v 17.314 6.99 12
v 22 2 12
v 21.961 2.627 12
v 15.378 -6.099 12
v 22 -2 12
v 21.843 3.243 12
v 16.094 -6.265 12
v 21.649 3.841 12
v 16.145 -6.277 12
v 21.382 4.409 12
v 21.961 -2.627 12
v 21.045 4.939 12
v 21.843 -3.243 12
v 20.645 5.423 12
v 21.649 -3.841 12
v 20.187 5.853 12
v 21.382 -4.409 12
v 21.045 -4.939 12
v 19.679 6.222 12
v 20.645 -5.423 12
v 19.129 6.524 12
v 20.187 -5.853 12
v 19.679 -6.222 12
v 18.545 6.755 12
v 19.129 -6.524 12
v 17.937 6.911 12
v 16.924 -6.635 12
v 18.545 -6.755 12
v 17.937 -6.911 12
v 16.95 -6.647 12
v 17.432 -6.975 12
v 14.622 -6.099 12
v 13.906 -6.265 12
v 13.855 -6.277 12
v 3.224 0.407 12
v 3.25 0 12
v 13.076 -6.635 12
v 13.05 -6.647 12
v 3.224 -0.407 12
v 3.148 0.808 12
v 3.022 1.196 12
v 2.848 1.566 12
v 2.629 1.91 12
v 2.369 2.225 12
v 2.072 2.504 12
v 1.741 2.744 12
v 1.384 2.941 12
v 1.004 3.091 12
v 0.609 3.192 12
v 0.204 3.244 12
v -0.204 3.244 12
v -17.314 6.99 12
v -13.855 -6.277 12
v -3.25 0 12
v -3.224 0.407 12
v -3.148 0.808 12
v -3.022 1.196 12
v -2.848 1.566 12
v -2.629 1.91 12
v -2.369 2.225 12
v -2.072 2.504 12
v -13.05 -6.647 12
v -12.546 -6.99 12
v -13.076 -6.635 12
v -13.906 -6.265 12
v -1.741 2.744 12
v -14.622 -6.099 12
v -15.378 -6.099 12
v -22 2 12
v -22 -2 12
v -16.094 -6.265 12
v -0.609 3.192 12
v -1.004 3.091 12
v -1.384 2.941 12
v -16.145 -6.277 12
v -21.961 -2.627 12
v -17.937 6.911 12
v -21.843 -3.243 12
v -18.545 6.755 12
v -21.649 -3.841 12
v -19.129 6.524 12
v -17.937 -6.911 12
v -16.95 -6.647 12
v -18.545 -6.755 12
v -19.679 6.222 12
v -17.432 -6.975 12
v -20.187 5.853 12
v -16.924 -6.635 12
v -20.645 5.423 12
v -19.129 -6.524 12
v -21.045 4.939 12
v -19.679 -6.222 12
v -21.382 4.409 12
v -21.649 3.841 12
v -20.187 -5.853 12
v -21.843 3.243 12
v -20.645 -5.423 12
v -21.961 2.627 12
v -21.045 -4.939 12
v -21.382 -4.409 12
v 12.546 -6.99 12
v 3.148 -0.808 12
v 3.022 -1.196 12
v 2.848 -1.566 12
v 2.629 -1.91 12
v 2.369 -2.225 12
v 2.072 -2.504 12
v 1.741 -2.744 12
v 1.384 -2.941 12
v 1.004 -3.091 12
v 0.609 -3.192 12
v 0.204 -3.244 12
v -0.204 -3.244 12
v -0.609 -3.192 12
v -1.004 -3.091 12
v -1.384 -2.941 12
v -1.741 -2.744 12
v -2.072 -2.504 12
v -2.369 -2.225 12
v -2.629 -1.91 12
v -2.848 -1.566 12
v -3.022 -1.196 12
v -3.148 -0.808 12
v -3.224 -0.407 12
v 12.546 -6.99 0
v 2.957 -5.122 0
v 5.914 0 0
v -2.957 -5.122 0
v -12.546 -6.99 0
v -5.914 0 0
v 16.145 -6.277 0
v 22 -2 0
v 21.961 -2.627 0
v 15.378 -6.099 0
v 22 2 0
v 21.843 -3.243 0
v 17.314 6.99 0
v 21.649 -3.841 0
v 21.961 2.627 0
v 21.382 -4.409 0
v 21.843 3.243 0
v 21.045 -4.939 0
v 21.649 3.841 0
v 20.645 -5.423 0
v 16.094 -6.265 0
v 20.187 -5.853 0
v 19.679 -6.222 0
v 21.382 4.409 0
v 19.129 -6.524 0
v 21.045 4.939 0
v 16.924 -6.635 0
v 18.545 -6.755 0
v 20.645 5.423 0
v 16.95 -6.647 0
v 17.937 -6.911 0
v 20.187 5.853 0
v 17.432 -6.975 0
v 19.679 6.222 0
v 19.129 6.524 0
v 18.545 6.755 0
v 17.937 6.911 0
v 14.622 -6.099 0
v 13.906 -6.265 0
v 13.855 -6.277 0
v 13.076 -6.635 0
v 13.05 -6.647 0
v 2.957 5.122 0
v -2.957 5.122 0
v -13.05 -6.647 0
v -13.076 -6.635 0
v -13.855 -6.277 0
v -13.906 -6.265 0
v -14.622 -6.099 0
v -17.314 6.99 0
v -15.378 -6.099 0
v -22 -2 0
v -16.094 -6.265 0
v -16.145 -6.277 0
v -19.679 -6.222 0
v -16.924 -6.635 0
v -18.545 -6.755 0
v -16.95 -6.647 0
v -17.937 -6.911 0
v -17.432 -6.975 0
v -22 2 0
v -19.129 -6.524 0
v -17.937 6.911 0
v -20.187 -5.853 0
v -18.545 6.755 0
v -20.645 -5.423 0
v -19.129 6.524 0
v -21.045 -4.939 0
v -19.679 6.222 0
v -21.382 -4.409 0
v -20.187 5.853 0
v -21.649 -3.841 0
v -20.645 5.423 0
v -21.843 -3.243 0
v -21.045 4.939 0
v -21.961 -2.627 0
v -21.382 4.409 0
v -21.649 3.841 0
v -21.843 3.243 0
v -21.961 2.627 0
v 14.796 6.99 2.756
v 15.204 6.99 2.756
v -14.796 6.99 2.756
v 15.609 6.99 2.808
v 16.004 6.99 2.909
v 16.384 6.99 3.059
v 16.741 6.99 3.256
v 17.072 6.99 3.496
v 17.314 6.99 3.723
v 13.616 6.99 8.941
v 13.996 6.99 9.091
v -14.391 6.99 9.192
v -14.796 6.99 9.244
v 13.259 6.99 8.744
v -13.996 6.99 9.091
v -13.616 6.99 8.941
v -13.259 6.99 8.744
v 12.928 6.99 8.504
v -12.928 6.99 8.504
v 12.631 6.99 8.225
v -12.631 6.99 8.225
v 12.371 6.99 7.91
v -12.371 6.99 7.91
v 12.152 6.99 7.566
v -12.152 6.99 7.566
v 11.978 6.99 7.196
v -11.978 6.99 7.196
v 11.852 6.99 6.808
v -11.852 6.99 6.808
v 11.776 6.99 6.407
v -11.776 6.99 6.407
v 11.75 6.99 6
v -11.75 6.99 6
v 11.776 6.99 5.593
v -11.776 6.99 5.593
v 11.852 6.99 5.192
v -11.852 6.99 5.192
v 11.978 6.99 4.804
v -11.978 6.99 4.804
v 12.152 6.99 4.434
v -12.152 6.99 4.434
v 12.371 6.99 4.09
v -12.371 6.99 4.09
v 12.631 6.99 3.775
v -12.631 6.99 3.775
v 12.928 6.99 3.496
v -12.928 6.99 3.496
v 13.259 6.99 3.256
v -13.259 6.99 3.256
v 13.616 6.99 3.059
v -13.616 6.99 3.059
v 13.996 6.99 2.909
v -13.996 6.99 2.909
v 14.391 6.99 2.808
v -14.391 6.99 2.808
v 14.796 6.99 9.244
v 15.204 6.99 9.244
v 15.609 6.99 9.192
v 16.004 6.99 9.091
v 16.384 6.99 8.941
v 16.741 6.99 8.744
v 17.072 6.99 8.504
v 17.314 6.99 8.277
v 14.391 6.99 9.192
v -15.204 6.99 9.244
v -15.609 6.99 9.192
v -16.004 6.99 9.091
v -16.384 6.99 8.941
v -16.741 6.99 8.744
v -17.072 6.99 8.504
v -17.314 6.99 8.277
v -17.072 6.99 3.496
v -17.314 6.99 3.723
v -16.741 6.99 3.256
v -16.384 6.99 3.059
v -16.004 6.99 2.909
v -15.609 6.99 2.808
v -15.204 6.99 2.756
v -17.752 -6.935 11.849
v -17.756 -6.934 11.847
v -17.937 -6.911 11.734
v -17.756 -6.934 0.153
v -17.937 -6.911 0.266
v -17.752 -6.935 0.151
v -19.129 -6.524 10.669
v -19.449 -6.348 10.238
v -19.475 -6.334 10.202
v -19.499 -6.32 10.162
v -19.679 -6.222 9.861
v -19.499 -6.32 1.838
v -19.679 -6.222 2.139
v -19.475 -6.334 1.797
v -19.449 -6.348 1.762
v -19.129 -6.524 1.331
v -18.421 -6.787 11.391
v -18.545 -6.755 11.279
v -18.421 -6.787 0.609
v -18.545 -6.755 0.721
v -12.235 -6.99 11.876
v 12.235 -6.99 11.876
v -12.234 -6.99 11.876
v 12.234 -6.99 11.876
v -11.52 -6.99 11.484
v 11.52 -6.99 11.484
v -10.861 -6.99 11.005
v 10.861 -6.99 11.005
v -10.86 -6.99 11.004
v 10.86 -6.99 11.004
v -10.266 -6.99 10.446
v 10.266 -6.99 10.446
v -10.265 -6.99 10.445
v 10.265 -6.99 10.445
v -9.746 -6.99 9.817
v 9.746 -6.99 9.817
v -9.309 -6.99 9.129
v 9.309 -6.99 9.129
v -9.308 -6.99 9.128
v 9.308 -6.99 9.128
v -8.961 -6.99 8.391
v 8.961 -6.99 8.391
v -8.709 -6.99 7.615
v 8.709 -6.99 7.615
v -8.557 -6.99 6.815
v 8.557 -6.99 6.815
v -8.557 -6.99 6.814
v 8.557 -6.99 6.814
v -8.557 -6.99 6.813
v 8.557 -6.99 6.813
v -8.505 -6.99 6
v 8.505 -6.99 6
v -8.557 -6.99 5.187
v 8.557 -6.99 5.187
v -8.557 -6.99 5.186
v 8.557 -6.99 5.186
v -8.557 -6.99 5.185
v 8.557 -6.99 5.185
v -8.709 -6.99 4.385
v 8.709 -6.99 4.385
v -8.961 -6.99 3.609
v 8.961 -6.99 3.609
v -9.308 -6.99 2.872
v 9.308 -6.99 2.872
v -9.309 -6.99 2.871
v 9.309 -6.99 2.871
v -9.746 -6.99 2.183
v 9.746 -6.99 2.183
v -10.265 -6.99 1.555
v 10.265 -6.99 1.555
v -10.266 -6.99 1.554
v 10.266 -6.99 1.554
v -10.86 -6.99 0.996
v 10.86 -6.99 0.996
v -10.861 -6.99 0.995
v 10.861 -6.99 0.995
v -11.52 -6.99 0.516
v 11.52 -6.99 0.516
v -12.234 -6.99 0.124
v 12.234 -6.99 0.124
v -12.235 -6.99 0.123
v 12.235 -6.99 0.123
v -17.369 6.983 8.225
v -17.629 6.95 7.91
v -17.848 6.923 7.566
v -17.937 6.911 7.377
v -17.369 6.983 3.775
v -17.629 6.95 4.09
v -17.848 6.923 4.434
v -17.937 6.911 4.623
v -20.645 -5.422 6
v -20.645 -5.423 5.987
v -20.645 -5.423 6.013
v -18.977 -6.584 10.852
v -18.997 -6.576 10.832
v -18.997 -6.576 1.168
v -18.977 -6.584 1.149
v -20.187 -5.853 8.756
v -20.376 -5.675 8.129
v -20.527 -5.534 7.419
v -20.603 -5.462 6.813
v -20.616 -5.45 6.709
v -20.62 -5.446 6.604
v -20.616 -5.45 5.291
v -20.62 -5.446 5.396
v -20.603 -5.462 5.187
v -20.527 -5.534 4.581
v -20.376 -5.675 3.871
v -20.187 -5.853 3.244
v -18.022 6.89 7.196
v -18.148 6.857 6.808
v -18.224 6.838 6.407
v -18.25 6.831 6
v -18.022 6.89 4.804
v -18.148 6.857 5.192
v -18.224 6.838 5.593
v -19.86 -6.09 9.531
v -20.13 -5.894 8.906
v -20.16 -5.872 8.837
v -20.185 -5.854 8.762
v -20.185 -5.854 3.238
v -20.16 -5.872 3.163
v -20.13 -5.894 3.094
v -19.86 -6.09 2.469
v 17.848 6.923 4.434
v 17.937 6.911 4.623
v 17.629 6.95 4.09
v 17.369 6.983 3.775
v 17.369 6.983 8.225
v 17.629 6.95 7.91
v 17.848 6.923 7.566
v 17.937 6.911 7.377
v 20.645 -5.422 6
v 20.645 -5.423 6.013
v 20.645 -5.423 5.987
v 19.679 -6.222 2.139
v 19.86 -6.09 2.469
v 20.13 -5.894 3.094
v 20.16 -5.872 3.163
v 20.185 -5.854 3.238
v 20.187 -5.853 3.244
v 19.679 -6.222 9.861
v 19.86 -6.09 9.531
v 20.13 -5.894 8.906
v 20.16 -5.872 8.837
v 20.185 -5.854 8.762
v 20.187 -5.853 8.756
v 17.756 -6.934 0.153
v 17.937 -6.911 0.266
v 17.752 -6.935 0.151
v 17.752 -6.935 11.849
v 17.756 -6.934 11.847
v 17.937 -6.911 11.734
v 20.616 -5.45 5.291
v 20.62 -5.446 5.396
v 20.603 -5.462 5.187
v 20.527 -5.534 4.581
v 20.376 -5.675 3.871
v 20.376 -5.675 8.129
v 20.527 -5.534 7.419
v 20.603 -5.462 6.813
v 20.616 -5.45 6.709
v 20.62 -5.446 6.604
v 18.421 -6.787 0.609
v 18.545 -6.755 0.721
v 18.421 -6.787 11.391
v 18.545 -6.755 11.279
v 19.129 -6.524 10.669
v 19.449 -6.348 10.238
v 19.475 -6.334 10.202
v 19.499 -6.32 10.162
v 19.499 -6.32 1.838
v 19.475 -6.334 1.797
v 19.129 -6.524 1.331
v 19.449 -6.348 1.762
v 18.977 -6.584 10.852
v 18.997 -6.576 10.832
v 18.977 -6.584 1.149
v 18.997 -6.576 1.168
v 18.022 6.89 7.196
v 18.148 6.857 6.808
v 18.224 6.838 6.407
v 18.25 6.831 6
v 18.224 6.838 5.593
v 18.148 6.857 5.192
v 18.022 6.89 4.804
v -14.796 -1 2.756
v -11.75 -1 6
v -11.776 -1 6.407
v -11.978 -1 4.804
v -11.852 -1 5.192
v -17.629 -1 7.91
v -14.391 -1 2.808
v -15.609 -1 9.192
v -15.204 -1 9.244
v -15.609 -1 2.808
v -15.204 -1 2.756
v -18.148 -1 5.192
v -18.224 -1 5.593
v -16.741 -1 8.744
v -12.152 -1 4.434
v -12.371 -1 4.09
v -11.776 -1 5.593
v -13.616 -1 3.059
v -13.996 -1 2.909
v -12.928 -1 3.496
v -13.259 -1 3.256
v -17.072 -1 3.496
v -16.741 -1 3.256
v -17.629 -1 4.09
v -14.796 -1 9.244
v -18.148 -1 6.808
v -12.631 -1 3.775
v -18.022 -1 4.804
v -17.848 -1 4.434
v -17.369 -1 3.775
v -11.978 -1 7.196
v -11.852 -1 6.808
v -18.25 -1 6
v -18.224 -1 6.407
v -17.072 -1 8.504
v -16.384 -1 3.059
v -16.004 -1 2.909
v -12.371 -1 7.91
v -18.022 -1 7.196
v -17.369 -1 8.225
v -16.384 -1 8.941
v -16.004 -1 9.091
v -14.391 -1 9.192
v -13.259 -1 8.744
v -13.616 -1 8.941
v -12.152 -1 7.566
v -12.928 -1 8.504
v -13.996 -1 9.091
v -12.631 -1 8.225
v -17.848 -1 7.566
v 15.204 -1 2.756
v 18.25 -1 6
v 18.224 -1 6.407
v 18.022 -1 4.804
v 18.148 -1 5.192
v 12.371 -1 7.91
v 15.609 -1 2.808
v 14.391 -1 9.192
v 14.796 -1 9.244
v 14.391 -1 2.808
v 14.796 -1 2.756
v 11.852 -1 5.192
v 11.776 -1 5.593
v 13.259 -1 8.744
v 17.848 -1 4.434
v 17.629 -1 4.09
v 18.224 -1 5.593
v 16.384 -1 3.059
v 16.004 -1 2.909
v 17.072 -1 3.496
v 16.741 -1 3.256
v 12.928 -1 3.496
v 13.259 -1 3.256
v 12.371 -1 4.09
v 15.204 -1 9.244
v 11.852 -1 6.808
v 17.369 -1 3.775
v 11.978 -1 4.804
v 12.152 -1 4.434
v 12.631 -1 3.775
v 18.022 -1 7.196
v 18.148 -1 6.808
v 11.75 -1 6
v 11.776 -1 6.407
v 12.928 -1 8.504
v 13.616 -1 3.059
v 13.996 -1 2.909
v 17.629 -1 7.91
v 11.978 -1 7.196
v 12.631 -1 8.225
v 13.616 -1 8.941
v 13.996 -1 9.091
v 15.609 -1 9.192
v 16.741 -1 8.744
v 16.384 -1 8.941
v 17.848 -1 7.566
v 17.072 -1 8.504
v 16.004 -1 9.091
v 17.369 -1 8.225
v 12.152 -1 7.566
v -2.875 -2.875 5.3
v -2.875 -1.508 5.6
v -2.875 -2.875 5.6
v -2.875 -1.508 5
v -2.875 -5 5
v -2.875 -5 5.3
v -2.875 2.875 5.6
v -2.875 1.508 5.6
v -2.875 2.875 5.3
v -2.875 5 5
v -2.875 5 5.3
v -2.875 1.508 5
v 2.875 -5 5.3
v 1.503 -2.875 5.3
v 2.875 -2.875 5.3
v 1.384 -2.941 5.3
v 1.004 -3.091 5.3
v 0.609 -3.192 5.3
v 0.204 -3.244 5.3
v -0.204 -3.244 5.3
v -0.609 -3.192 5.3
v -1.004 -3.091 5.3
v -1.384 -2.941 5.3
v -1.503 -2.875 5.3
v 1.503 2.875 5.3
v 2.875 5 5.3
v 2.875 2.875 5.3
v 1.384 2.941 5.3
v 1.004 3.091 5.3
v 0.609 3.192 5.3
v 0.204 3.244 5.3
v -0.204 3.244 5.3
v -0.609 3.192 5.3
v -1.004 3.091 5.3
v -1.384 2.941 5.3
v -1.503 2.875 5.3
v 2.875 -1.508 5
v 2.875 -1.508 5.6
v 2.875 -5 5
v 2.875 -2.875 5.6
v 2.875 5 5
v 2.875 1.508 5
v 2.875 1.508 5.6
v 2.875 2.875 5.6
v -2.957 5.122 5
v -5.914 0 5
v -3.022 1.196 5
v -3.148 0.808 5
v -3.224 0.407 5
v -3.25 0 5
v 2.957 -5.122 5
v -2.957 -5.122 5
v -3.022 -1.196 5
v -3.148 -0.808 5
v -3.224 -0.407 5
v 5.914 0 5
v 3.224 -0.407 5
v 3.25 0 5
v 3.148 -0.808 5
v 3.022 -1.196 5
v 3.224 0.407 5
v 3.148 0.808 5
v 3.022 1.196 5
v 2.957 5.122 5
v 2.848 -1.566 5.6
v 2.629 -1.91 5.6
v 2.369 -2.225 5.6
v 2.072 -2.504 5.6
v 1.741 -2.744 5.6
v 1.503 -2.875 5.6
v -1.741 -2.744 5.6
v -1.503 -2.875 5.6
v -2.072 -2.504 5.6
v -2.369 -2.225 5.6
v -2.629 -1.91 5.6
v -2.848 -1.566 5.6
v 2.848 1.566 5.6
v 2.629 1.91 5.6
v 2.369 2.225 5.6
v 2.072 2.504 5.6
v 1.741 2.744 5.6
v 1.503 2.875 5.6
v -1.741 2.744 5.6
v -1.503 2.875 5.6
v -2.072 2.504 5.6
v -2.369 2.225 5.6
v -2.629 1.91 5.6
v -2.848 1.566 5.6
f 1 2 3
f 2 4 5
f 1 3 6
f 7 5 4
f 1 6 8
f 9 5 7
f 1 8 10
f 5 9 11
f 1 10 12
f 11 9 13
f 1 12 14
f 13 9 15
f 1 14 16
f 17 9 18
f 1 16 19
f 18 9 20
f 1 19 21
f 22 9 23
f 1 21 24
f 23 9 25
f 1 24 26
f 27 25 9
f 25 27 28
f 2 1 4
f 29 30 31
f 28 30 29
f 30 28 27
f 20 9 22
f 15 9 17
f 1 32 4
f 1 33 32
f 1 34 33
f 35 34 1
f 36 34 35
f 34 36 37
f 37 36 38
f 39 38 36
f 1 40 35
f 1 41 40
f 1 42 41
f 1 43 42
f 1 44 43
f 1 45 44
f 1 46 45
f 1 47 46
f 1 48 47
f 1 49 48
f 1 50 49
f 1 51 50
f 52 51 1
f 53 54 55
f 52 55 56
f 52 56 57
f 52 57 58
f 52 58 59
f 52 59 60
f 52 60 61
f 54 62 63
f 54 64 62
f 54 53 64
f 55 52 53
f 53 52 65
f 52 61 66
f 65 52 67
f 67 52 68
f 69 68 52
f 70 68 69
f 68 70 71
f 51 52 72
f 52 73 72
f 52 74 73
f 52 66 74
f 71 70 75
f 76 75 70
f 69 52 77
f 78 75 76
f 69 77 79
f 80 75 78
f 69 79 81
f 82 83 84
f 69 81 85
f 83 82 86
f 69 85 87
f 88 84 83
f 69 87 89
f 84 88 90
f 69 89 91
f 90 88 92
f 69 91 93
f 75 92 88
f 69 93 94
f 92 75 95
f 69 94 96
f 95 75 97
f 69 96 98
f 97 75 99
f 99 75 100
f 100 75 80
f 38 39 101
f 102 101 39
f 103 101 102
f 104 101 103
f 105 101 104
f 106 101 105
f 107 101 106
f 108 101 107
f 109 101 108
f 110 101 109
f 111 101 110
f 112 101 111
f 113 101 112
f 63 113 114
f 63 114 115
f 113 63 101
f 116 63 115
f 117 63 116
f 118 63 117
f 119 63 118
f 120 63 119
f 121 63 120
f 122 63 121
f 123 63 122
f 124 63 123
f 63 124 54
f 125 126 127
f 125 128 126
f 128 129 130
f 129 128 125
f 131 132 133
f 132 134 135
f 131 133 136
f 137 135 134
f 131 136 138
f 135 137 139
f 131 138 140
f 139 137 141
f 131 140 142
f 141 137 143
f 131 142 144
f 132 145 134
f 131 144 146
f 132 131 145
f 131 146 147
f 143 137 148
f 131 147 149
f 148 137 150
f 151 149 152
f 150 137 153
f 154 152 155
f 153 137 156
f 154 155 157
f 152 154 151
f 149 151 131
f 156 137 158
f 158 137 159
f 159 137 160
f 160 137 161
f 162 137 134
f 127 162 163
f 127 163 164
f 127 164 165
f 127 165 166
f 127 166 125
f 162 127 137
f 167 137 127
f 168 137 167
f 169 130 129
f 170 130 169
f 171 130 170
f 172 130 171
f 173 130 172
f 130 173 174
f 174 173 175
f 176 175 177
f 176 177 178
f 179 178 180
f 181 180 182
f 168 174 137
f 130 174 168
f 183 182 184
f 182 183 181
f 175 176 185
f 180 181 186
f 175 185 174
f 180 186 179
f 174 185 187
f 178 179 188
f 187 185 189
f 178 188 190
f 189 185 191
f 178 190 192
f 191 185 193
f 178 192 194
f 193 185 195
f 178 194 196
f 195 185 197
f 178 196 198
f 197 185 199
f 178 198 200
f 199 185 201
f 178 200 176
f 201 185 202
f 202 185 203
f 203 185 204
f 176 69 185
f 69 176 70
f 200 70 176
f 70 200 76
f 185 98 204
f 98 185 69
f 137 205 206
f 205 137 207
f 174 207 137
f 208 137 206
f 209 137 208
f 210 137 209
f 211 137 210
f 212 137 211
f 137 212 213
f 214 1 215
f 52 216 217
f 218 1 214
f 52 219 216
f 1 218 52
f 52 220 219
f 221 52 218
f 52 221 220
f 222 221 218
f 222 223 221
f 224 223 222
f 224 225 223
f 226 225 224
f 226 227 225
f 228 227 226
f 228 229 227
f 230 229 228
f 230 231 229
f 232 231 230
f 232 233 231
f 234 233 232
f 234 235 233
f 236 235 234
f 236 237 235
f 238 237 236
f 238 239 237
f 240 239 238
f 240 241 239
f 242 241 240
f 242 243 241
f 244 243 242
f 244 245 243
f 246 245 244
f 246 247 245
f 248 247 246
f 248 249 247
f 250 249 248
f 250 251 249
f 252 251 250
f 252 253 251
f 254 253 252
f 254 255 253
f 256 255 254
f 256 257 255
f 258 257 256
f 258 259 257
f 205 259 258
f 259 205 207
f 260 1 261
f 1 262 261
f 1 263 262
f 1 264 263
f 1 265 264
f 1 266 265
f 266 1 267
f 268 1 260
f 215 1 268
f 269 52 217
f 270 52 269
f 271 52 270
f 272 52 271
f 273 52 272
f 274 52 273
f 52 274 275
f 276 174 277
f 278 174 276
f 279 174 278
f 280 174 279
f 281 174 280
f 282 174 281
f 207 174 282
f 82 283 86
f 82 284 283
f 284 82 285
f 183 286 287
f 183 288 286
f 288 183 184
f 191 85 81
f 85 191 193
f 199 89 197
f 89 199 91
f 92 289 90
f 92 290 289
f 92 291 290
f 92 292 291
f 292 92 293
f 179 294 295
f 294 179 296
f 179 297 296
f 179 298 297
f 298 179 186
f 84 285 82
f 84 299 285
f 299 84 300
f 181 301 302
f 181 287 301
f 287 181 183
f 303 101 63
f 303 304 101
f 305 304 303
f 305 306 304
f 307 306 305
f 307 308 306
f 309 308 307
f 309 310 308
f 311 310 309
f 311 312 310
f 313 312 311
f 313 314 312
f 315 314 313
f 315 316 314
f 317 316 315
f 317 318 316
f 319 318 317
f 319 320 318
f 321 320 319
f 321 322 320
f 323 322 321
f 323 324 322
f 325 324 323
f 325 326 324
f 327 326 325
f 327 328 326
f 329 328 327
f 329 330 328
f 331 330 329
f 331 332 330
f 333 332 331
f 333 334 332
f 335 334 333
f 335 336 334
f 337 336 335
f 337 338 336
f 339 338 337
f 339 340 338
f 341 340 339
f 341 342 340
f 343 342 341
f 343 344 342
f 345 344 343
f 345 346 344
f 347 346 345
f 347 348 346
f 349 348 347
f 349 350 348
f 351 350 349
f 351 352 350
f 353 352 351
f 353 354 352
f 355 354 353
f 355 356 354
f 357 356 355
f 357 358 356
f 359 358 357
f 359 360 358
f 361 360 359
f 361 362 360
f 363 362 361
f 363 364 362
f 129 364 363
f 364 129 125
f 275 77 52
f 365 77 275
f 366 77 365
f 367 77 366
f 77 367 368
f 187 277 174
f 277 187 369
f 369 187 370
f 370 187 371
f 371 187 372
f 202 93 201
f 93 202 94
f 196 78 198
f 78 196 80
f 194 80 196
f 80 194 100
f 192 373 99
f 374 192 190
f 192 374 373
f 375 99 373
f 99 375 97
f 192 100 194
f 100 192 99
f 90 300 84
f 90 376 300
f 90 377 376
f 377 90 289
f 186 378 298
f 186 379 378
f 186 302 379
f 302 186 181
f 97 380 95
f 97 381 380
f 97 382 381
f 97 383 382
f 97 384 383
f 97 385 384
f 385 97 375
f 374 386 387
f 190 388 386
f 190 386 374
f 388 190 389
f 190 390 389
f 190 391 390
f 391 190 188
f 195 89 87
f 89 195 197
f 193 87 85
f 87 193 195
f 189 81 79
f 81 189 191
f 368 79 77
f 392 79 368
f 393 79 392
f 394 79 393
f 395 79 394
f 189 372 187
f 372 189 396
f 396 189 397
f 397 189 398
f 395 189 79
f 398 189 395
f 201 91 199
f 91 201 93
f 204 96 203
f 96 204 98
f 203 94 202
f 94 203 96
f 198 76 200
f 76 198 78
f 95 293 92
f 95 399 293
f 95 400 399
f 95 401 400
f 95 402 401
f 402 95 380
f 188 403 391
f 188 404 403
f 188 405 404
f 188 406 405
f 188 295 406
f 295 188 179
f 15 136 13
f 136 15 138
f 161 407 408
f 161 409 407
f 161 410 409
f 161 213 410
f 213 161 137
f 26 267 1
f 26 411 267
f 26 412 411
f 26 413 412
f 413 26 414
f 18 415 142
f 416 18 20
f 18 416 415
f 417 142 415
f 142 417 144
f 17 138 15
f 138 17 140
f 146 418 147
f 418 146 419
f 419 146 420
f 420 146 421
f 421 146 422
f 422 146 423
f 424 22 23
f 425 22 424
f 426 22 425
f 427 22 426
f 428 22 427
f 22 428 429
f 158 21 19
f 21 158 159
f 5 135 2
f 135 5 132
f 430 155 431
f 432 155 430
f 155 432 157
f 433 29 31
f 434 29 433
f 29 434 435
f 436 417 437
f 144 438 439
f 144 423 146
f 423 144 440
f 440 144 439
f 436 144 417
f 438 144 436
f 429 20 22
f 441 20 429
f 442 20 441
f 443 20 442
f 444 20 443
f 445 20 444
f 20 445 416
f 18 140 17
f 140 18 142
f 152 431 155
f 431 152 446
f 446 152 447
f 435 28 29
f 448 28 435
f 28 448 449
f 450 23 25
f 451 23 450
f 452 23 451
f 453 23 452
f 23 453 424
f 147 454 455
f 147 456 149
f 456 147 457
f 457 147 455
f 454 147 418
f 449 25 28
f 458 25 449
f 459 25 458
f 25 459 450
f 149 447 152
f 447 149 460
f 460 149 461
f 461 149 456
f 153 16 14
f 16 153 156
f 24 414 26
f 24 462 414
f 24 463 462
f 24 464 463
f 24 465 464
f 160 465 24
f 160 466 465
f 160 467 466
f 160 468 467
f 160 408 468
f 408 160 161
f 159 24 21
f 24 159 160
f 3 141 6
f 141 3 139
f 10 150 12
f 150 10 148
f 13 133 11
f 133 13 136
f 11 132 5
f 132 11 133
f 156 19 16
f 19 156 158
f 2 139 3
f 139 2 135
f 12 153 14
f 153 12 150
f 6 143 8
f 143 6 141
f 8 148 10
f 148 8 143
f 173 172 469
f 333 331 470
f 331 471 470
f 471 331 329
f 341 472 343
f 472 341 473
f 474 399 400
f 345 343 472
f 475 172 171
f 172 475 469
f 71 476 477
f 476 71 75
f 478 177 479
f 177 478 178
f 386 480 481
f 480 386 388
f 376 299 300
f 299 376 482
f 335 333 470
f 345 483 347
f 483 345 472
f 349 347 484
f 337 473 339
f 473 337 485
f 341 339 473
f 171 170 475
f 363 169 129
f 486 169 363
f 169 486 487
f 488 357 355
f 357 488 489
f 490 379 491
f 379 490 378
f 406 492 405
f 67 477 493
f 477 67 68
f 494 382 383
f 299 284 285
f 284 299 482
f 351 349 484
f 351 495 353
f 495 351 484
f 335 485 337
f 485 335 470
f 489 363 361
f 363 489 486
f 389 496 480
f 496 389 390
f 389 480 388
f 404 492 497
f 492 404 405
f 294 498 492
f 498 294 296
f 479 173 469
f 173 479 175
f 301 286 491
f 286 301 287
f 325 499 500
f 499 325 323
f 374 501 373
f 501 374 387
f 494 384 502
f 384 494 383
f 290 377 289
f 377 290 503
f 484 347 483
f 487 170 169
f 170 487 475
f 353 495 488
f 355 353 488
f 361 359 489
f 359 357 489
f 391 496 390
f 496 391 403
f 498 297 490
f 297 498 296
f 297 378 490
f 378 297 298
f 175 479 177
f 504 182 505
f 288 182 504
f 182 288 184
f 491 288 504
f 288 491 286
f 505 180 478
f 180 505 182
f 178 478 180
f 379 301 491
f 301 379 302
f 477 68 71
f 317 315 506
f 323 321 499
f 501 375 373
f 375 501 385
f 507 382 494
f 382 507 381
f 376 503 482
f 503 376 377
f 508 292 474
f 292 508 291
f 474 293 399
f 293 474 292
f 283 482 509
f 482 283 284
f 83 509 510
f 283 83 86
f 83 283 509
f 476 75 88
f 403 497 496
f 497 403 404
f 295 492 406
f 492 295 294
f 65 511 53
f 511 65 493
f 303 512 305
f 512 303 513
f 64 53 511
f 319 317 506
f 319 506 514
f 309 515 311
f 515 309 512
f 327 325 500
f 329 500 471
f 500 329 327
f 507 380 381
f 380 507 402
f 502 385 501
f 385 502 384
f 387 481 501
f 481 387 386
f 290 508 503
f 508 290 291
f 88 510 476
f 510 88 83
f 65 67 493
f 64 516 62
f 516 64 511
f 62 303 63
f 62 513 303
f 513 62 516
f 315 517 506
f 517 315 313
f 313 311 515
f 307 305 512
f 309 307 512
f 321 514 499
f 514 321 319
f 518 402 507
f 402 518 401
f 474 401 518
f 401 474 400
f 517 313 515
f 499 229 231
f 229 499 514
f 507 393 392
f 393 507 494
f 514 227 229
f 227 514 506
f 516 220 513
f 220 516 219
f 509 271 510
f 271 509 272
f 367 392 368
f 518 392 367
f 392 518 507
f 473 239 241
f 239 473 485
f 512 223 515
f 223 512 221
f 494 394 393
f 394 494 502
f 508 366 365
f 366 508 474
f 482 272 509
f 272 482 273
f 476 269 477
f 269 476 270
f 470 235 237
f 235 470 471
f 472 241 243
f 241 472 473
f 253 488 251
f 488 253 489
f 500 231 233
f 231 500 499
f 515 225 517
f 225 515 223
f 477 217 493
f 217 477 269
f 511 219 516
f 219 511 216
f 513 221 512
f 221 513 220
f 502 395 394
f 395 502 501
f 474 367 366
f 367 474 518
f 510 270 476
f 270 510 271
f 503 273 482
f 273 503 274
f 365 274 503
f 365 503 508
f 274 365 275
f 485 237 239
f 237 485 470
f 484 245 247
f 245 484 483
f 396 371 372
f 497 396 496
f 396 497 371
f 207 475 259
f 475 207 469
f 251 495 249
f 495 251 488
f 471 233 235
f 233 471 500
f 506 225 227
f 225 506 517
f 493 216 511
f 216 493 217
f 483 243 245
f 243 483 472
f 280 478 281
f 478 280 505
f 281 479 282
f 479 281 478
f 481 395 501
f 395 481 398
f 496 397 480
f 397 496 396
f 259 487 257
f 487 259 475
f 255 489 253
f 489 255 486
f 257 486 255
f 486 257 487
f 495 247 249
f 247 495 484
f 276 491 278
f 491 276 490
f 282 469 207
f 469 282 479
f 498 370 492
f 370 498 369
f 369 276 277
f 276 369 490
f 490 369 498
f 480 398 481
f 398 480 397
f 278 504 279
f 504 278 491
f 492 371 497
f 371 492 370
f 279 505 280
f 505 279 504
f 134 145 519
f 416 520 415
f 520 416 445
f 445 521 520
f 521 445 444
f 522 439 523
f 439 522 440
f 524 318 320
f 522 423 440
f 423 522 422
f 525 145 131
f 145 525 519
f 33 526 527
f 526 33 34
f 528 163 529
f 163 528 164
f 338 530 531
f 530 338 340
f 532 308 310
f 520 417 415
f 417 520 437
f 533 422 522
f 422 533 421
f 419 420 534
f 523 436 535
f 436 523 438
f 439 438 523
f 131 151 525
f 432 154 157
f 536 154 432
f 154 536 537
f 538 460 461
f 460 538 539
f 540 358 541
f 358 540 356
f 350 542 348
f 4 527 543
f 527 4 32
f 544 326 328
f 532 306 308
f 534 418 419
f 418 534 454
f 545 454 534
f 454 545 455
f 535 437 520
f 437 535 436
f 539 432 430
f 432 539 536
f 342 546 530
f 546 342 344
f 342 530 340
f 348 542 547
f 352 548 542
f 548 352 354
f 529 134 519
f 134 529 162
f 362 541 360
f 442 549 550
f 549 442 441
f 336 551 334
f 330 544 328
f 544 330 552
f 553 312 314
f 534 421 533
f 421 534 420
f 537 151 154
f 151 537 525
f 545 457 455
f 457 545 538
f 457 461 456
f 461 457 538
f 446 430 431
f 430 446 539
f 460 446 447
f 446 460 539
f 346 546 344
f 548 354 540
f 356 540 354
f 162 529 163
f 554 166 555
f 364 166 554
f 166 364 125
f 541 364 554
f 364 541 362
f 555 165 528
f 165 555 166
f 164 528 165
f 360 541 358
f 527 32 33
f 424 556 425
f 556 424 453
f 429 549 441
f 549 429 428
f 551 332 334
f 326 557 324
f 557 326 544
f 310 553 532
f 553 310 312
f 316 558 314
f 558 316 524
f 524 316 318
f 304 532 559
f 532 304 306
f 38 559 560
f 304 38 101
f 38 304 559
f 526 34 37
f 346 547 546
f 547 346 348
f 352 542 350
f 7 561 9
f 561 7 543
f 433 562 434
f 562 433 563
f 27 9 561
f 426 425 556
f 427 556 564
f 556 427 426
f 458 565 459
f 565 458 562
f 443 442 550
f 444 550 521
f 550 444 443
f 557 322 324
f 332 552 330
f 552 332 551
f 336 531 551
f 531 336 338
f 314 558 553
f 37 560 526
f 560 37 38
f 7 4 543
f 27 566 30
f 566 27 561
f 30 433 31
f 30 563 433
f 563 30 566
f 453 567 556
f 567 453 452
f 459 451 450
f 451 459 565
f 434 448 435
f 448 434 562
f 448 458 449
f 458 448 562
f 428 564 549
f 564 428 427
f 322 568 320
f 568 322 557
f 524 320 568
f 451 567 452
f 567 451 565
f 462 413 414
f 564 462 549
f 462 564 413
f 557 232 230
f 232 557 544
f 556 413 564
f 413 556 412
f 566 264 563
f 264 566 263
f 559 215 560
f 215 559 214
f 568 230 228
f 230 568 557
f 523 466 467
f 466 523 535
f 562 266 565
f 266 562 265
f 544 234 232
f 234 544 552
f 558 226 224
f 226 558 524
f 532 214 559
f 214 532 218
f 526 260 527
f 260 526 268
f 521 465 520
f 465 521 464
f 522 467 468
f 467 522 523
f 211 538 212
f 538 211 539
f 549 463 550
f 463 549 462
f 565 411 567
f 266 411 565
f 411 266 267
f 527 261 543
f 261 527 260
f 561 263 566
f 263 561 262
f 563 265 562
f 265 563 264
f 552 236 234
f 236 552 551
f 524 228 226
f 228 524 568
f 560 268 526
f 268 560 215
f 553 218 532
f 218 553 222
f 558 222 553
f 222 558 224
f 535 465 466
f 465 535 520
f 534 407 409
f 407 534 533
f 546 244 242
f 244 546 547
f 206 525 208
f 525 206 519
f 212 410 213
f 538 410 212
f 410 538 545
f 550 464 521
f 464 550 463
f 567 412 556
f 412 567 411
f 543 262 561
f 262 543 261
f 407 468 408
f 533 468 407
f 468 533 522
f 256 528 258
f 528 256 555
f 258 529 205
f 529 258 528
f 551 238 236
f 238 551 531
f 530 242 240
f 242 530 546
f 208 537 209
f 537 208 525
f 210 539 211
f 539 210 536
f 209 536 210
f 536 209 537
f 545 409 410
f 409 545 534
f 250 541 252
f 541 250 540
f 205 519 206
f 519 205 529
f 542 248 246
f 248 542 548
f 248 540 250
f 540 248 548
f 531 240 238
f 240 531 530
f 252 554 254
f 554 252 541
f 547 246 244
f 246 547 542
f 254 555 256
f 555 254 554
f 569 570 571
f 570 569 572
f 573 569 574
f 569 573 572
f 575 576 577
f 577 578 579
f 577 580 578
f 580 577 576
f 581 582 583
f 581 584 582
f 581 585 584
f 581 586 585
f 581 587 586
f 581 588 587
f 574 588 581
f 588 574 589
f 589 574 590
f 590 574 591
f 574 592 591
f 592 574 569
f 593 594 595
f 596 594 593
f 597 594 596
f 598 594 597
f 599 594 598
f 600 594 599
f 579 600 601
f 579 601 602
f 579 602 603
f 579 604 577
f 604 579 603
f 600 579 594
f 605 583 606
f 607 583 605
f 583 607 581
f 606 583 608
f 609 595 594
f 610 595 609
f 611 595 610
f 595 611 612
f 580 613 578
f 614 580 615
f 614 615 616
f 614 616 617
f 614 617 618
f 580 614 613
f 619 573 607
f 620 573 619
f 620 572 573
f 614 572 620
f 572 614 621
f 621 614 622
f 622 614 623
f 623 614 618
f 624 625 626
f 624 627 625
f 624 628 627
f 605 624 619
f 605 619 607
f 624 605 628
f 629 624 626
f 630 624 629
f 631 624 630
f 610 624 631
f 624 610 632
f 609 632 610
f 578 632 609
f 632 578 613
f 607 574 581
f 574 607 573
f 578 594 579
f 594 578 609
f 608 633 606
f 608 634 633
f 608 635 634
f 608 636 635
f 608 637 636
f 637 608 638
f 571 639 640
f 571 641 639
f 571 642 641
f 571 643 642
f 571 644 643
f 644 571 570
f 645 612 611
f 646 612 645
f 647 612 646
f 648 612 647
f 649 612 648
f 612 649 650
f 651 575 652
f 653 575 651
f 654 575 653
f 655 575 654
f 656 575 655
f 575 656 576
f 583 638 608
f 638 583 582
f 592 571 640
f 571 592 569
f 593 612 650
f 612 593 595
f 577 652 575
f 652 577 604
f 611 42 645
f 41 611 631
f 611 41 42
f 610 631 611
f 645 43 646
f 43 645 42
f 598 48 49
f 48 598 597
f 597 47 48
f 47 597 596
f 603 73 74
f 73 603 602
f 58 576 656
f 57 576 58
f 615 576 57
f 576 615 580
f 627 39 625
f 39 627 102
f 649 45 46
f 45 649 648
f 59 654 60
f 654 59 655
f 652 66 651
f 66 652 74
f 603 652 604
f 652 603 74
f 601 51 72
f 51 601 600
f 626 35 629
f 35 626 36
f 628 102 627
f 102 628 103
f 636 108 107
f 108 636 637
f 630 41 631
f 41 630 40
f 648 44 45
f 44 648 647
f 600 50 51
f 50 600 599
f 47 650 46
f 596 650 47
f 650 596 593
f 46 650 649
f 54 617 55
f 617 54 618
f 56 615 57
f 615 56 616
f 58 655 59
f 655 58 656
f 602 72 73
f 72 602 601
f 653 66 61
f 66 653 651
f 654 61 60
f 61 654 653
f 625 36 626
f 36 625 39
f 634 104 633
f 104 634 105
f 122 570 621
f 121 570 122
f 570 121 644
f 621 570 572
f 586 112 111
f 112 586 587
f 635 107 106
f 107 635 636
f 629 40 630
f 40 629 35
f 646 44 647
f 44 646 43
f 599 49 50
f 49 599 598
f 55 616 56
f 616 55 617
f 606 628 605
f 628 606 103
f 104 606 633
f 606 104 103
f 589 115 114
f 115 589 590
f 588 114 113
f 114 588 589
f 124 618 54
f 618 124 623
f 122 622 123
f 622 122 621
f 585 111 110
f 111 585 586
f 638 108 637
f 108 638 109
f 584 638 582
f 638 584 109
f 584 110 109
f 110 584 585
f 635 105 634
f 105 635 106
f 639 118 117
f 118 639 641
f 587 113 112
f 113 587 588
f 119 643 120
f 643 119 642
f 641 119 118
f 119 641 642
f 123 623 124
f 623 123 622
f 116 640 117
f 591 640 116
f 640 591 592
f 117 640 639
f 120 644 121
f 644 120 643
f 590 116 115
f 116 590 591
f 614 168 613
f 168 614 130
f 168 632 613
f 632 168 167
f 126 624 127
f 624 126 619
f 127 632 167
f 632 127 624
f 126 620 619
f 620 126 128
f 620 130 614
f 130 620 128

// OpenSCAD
$fn = 50;


difference() {
	union() {
		cylinder(h = 12, r = 7.0000000000);
		translate(v = [-7.5000000000, 0.0000000000, 0]) {
			hull() {
				translate(v = [-9.5000000000, 2.0000000000, 0]) {
					cylinder(h = 12, r = 5);
				}
				translate(v = [9.5000000000, 2.0000000000, 0]) {
					cylinder(h = 12, r = 5);
				}
				translate(v = [-9.5000000000, -2.0000000000, 0]) {
					cylinder(h = 12, r = 5);
				}
				translate(v = [9.5000000000, -2.0000000000, 0]) {
					cylinder(h = 12, r = 5);
				}
			}
		}
		translate(v = [-7.5000000000, 0.0000000000, 0]) {
			hull() {
				translate(v = [-9.5000000000, 2.0000000000, 0]) {
					cylinder(h = 12, r = 5);
				}
				translate(v = [9.5000000000, 2.0000000000, 0]) {
					cylinder(h = 12, r = 5);
				}
				translate(v = [-9.5000000000, -2.0000000000, 0]) {
					cylinder(h = 12, r = 5);
				}
				translate(v = [9.5000000000, -2.0000000000, 0]) {
					cylinder(h = 12, r = 5);
				}
			}
		}
		translate(v = [7.5000000000, 0.0000000000, 0]) {
			hull() {
				translate(v = [-9.5000000000, 2.0000000000, 0]) {
					cylinder(h = 12, r = 5);
				}
				translate(v = [9.5000000000, 2.0000000000, 0]) {
					cylinder(h = 12, r = 5);
				}
				translate(v = [-9.5000000000, -2.0000000000, 0]) {
					cylinder(h = 12, r = 5);
				}
				translate(v = [9.5000000000, -2.0000000000, 0]) {
					cylinder(h = 12, r = 5);
				}
			}
		}
		translate(v = [7.5000000000, 0.0000000000, 0]) {
			hull() {
				translate(v = [-9.5000000000, 2.0000000000, 0]) {
					cylinder(h = 12, r = 5);
				}
				translate(v = [9.5000000000, 2.0000000000, 0]) {
					cylinder(h = 12, r = 5);
				}
				translate(v = [-9.5000000000, -2.0000000000, 0]) {
					cylinder(h = 12, r = 5);
				}
				translate(v = [9.5000000000, -2.0000000000, 0]) {
					cylinder(h = 12, r = 5);
				}
			}
		}
	}
	union() {
		translate(v = [-15.0000000000, -7.0000000000, 6.0000000000]) {
			rotate(a = [90, 0, 0]) {
				difference() {
					union() {
						#translate(v = [0, 0, -14.0000000000]) {
							cylinder(h = 14, r = 2.2500000000);
						}
						#translate(v = [0, 0, -6]) {
							cylinder(h = 6, r1 = 3.2500000000, r2 = 6.5000000000);
						}
						#translate(v = [0, 0, -14.0000000000]) {
							cylinder(h = 14, r = 3.2500000000);
						}
						#translate(v = [0, 0, -14.0000000000]) {
							cylinder(h = 14, r = 2.2500000000);
						}
					}
					union();
				}
			}
		}
		translate(v = [15.0000000000, -7.0000000000, 6.0000000000]) {
			rotate(a = [90, 0, 0]) {
				difference() {
					union() {
						#translate(v = [0, 0, -14.0000000000]) {
							cylinder(h = 14, r = 2.2500000000);
						}
						#translate(v = [0, 0, -6]) {
							cylinder(h = 6, r1 = 3.2500000000, r2 = 6.5000000000);
						}
						#translate(v = [0, 0, -14.0000000000]) {
							cylinder(h = 14, r = 3.2500000000);
						}
						#translate(v = [0, 0, -14.0000000000]) {
							cylinder(h = 14, r = 2.2500000000);
						}
					}
					union();
				}
			}
		}
		translate(v = [0.0000000000, 0.0000000000, 0]) {
			rotate(a = [0, 0, 0]) {
				difference() {
					union() {
						#translate(v = [-2.8750000000, -5.0000000000, -0.3000000000]) {
							cube(size = [5.7500000000, 10, 0.3000000000]);
						}
						#translate(v = [-2.8750000000, -2.8750000000, -0.6000000000]) {
							cube(size = [5.7500000000, 5.7500000000, 0.3000000000]);
						}
						#translate(v = [-2.8750000000, -5.0000000000, 5]) {
							cube(size = [5.7500000000, 10, 0.3000000000]);
						}
						#translate(v = [-2.8750000000, -2.8750000000, 5.3000000000]) {
							cube(size = [5.7500000000, 5.7500000000, 0.3000000000]);
						}
						#translate(v = [0, 0, -100.0000000000]) {
							cylinder(h = 200, r = 3.2500000000);
						}
						#linear_extrude(height = 5) {
							polygon(points = [[5.9142500000, 0.0000000000], [2.9571250000, 5.1218907443], [-2.9571250000, 5.1218907443], [-5.9142500000, 0.0000000000], [-2.9571250000, -5.1218907443], [2.9571250000, -5.1218907443]]);
						}
						#translate(v = [-2.8750000000, -5.0000000000, -0.3000000000]) {
							cube(size = [5.7500000000, 10, 0.3000000000]);
						}
						#translate(v = [-2.8750000000, -2.8750000000, -0.6000000000]) {
							cube(size = [5.7500000000, 5.7500000000, 0.3000000000]);
						}
						#translate(v = [-2.8750000000, -5.0000000000, 5]) {
							cube(size = [5.7500000000, 10, 0.3000000000]);
						}
						#translate(v = [-2.8750000000, -2.8750000000, 5.3000000000]) {
							cube(size = [5.7500000000, 5.7500000000, 0.3000000000]);
						}
						#translate(v = [0, 0, -100.0000000000]) {
							cylinder(h = 200, r = 3.2500000000);
						}
						#translate(v = [-2.8750000000, -5.0000000000, -0.3000000000]) {
							cube(size = [5.7500000000, 10, 0.3000000000]);
						}
						#translate(v = [-2.8750000000, -2.8750000000, -0.6000000000]) {
							cube(size = [5.7500000000, 5.7500000000, 0.3000000000]);
						}
						#translate(v = [-2.8750000000, -5.0000000000, 5]) {
							cube(size = [5.7500000000, 10, 0.3000000000]);
						}
						#translate(v = [-2.8750000000, -2.8750000000, 5.3000000000]) {
							cube(size = [5.7500000000, 5.7500000000, 0.3000000000]);
						}
						#translate(v = [0, 0, -100.0000000000]) {
							cylinder(h = 200, r = 3.2500000000);
						}
					}
					union();
				}
			}
		}
		translate(v = [0, 0, -100]) {
			cylinder(h = 200, r = 3.2500000000);
		}
		translate(v = [0, 0, -100]) {
			cylinder(h = 200, r = 1.8000000000);
		}
	}
}
